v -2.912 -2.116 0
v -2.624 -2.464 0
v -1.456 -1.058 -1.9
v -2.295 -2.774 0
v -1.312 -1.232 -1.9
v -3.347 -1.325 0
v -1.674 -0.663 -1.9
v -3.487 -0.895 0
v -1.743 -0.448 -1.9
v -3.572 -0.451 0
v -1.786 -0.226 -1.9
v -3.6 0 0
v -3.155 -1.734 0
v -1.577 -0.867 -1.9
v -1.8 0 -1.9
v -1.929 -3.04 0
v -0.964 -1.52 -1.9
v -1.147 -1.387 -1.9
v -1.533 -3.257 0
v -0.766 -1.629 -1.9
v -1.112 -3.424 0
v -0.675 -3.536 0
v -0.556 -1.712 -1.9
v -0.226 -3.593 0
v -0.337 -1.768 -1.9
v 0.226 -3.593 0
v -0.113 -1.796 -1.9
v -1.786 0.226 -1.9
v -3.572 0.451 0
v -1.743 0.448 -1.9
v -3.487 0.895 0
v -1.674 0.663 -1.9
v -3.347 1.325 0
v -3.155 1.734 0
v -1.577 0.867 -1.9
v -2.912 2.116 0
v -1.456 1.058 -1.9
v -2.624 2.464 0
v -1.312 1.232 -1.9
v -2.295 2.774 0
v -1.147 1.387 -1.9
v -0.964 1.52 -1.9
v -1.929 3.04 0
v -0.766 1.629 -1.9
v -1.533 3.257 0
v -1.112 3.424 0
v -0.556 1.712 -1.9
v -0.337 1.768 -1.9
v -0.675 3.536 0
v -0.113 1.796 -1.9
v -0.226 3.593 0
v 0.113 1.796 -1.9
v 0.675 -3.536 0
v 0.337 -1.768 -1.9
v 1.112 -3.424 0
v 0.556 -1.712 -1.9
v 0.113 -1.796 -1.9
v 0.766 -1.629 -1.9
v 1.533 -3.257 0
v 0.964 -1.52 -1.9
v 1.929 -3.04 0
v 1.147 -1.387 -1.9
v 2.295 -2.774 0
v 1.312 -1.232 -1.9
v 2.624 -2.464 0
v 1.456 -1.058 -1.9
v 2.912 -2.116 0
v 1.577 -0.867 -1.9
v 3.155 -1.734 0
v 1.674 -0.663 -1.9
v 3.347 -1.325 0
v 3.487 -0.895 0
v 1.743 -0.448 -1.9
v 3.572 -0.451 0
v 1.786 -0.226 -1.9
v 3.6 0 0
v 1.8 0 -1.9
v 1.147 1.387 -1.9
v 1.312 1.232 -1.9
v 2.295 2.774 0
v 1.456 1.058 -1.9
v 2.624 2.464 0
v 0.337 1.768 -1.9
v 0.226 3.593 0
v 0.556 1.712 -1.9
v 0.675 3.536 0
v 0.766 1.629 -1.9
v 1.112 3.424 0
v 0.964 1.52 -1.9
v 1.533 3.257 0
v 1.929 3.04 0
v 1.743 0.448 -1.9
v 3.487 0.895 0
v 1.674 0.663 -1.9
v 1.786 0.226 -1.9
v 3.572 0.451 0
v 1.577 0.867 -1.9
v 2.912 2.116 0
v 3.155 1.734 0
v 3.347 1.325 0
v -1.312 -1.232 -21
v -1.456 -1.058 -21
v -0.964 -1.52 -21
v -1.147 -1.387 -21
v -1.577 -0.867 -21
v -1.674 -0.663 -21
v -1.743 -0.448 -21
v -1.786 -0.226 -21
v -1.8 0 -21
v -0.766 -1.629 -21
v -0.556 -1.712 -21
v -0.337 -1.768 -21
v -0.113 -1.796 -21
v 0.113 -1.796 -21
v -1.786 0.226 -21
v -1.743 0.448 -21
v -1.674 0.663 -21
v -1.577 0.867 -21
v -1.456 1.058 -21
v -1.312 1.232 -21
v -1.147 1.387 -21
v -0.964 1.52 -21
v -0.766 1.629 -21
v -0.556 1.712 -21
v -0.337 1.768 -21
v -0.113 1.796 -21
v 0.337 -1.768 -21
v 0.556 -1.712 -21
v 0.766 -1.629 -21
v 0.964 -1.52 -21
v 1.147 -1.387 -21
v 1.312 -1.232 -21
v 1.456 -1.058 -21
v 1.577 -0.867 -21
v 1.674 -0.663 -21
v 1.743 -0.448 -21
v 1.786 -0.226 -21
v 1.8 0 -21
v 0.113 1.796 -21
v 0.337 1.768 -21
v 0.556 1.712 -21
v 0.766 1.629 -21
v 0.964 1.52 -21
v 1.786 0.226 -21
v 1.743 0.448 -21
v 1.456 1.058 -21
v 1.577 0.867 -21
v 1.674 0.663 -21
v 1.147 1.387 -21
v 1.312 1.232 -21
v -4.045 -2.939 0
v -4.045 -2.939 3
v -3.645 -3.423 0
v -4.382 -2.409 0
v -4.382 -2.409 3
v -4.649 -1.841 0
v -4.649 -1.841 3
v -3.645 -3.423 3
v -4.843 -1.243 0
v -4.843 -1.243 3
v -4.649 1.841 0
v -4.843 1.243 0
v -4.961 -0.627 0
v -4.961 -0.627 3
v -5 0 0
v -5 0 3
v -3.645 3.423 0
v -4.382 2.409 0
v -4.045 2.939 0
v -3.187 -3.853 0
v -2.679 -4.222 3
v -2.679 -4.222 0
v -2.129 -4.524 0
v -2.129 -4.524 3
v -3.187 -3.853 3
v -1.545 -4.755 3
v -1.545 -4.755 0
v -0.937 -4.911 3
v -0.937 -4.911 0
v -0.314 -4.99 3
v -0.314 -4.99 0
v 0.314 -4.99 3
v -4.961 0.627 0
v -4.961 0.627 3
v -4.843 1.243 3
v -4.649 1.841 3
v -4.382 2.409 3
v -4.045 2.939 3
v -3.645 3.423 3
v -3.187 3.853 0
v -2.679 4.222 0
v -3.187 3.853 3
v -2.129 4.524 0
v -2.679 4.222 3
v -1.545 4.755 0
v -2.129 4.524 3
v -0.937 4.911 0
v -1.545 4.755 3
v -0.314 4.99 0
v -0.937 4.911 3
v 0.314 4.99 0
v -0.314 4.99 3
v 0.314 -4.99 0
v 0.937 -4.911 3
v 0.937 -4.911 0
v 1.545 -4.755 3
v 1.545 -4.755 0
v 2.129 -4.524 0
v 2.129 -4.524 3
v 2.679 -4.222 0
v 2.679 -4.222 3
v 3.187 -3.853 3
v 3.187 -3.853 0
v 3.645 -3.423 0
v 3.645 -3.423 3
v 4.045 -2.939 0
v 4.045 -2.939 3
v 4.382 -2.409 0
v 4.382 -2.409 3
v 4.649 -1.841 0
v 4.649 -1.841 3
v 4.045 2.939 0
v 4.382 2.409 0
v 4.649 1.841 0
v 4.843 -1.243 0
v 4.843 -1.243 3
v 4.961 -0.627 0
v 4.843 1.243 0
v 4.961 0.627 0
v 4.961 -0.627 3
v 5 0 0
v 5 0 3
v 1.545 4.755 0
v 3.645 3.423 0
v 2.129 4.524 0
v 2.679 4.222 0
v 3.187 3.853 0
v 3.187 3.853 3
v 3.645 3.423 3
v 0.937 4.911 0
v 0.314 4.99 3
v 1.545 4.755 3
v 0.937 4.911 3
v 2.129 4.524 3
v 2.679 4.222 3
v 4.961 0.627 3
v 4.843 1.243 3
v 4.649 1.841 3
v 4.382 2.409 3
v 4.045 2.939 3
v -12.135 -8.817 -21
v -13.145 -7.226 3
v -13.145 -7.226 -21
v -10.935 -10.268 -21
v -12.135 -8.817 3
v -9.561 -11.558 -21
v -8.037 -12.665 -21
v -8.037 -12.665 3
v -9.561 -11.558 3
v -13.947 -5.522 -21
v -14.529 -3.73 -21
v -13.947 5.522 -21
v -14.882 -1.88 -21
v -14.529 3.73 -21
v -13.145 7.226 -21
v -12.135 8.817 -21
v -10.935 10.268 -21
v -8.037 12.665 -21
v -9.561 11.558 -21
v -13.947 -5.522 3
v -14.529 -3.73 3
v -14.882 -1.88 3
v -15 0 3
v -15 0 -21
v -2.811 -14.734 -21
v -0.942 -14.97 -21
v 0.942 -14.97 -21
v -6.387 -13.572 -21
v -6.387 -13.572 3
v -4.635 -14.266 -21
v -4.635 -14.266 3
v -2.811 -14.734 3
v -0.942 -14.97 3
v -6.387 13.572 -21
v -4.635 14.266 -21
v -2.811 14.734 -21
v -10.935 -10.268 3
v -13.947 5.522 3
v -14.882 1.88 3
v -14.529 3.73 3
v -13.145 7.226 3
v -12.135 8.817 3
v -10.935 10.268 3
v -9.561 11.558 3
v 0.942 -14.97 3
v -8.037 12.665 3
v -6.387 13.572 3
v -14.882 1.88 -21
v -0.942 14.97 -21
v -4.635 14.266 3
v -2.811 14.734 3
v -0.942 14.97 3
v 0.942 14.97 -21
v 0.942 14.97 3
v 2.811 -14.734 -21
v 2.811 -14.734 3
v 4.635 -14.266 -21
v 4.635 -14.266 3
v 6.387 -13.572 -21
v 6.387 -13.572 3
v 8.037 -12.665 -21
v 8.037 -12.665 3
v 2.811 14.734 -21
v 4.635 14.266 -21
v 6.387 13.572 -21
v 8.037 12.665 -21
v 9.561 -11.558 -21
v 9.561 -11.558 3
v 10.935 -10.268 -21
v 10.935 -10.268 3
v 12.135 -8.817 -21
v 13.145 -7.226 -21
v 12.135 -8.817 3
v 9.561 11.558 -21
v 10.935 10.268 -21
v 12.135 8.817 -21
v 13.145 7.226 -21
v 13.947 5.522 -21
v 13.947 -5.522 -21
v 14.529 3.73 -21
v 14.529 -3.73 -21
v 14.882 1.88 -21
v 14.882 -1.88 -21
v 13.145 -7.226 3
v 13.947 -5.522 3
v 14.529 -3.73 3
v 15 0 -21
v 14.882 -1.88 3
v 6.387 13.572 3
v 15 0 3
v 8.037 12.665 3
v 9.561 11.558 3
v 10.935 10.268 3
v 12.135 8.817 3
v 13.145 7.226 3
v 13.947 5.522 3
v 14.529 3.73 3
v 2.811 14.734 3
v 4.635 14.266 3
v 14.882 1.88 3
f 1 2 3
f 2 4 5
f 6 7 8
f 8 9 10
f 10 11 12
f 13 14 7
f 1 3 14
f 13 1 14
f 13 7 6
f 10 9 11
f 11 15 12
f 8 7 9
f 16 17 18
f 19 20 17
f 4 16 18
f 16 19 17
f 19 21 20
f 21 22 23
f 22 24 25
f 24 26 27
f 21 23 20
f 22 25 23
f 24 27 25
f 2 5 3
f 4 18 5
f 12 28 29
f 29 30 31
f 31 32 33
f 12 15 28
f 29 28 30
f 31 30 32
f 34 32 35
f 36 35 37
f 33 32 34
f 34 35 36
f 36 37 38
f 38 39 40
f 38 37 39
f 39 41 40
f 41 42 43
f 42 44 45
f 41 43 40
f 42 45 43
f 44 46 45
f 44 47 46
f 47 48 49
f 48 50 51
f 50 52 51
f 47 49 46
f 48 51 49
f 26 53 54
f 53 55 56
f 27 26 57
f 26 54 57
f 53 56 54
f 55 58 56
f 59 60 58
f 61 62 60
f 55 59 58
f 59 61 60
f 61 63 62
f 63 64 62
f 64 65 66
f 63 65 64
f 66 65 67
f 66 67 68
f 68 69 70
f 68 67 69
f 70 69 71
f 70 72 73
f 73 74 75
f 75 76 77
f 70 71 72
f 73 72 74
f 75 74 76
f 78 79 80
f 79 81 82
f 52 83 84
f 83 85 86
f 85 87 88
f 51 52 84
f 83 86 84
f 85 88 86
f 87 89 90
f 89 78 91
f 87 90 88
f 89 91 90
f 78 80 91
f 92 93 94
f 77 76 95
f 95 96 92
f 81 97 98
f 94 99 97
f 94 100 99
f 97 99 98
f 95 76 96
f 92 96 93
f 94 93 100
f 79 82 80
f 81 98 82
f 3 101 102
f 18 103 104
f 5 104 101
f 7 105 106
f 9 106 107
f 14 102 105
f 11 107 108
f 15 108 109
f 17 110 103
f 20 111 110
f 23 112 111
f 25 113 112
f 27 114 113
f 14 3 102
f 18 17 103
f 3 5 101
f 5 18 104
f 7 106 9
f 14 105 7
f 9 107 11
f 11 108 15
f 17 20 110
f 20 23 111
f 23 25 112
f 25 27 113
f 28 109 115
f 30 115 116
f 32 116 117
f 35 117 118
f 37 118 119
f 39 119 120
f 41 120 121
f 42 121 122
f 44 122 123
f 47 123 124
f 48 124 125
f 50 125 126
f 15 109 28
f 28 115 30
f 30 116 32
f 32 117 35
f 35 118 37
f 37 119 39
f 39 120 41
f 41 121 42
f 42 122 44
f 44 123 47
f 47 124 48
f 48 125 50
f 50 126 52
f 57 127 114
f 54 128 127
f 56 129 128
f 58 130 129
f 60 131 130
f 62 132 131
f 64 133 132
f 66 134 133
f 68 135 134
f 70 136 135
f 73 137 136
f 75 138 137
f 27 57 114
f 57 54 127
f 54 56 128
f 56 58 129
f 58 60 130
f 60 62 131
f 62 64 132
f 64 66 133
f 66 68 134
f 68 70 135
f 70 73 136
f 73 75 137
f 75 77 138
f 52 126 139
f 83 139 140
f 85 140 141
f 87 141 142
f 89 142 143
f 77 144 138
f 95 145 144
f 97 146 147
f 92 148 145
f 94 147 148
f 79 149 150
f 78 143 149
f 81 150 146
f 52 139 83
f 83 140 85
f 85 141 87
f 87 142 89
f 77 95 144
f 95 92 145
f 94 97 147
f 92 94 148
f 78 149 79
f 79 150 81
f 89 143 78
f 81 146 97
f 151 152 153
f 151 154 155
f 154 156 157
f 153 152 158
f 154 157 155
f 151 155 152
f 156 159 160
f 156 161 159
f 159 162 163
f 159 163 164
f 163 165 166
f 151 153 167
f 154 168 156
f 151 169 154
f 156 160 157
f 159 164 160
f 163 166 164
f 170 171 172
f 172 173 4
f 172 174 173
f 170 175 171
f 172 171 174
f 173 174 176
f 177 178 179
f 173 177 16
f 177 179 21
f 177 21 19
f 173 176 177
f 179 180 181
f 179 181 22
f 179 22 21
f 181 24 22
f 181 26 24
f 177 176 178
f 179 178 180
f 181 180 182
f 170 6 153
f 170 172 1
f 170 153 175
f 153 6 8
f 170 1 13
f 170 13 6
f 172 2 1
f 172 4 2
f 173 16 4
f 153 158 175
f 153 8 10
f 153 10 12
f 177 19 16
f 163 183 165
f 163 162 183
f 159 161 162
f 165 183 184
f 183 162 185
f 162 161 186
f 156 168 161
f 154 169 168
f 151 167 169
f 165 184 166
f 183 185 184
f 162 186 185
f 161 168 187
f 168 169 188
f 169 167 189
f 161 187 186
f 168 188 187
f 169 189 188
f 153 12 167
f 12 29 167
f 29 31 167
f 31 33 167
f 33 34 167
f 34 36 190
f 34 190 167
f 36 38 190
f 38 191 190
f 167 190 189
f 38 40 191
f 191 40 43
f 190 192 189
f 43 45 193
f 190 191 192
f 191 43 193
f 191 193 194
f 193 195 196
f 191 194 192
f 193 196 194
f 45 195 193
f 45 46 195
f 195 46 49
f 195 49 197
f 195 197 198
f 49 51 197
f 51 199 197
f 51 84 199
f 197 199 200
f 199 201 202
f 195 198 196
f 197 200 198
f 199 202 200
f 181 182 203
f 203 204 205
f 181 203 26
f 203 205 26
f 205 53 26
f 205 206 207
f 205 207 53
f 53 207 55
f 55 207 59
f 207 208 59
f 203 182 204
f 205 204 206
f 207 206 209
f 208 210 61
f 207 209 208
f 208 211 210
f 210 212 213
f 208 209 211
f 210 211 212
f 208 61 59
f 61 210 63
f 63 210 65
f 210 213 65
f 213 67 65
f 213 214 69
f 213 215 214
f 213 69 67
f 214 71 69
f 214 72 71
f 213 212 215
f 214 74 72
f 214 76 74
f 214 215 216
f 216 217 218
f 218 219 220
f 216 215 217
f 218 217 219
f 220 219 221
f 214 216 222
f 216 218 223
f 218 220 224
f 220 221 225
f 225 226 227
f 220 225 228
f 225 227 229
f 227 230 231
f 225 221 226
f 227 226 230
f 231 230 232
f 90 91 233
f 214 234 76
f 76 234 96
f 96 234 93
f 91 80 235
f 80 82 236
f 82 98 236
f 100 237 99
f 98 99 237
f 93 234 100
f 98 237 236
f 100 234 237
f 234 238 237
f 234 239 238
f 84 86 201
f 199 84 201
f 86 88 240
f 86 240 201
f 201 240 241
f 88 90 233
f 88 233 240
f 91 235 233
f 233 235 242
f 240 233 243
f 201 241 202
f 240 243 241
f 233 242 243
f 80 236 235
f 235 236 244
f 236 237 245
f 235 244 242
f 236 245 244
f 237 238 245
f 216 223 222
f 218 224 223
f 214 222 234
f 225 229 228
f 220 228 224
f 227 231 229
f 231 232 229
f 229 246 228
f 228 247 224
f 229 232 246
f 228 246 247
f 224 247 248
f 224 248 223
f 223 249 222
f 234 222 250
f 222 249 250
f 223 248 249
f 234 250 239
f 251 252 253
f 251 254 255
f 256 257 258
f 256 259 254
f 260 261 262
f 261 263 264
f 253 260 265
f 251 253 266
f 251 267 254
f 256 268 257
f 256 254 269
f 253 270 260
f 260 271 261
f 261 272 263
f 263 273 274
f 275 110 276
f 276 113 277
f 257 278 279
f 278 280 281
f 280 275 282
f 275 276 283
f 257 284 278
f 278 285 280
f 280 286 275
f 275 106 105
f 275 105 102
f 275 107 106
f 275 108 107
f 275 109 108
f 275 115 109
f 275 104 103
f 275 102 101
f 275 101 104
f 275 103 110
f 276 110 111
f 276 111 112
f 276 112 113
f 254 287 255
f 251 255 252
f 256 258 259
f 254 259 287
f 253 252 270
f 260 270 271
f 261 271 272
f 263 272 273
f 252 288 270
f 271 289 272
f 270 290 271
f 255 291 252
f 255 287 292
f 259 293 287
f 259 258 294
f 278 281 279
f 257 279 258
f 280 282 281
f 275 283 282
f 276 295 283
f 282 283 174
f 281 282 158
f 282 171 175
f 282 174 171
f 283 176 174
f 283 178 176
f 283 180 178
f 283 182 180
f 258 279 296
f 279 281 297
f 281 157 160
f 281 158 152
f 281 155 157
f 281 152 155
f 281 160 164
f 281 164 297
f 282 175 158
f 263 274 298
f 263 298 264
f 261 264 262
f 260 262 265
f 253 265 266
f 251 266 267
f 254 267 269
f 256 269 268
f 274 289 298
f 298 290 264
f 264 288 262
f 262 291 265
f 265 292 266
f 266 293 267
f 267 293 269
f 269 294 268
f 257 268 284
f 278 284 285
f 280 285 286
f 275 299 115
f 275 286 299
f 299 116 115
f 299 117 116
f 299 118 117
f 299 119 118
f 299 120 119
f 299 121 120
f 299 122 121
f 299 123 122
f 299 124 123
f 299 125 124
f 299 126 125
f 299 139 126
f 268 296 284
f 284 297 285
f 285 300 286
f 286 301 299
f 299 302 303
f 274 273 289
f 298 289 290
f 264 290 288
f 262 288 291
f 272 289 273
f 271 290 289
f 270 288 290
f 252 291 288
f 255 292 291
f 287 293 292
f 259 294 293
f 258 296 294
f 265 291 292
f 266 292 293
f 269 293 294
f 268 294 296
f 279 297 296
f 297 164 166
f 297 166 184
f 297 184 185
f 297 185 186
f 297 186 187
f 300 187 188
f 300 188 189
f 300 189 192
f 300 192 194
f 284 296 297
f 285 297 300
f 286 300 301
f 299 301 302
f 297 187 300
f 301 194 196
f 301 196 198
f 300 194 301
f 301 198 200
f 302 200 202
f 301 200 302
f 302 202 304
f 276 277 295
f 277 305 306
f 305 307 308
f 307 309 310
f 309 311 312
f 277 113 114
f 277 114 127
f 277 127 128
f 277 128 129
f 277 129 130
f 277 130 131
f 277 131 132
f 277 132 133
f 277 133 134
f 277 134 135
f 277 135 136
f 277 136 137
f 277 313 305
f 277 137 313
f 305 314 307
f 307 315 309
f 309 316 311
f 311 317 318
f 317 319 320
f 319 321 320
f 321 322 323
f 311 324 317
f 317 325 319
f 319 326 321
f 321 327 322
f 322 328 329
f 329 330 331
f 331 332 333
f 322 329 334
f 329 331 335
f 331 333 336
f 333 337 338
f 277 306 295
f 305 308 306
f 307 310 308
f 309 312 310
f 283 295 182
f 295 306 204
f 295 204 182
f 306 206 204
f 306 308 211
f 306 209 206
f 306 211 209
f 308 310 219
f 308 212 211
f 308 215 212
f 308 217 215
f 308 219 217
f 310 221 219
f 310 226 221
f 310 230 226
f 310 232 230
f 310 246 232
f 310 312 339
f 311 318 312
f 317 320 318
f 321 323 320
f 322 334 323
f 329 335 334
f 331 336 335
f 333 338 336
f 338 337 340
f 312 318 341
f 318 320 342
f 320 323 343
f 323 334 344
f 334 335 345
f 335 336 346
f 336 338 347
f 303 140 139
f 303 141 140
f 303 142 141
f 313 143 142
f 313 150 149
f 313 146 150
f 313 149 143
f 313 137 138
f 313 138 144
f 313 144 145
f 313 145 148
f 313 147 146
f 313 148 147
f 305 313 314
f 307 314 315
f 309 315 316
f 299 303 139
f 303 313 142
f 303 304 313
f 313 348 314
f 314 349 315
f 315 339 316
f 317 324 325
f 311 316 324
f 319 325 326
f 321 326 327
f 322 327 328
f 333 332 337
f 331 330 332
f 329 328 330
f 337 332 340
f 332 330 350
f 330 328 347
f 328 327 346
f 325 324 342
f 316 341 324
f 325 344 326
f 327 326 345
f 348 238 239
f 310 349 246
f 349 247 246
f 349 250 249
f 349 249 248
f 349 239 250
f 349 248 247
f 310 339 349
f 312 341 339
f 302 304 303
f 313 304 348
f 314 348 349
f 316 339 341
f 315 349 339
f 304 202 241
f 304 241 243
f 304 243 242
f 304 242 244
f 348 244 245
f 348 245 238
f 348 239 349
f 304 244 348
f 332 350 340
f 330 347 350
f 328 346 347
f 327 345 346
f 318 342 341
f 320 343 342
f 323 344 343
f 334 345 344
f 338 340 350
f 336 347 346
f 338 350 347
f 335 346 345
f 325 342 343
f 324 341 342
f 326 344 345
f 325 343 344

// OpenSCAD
$fn = 50;


difference() {
	union() {
		translate(v = [0, 0, -21.0000000000]) {
			cylinder(h = 24, r = 15.0000000000);
		}
	}
	union() {
		translate(v = [0, 0, 0]) {
			rotate(a = [0, 0, 0]) {
				difference() {
					union() {
						translate(v = [0, 0, -24.0000000000]) {
							cylinder(h = 24, r = 1.5000000000);
						}
						translate(v = [0, 0, -1.9000000000]) {
							cylinder(h = 1.9000000000, r1 = 1.8000000000, r2 = 3.6000000000);
						}
						translate(v = [0, 0, -24.0000000000]) {
							cylinder(h = 24, r = 1.8000000000);
						}
						translate(v = [0, 0, -24.0000000000]) {
							cylinder(h = 24, r = 1.5000000000);
						}
					}
					union();
				}
			}
		}
		#cylinder(h = 3, r = 5.0000000000);
	}
}
